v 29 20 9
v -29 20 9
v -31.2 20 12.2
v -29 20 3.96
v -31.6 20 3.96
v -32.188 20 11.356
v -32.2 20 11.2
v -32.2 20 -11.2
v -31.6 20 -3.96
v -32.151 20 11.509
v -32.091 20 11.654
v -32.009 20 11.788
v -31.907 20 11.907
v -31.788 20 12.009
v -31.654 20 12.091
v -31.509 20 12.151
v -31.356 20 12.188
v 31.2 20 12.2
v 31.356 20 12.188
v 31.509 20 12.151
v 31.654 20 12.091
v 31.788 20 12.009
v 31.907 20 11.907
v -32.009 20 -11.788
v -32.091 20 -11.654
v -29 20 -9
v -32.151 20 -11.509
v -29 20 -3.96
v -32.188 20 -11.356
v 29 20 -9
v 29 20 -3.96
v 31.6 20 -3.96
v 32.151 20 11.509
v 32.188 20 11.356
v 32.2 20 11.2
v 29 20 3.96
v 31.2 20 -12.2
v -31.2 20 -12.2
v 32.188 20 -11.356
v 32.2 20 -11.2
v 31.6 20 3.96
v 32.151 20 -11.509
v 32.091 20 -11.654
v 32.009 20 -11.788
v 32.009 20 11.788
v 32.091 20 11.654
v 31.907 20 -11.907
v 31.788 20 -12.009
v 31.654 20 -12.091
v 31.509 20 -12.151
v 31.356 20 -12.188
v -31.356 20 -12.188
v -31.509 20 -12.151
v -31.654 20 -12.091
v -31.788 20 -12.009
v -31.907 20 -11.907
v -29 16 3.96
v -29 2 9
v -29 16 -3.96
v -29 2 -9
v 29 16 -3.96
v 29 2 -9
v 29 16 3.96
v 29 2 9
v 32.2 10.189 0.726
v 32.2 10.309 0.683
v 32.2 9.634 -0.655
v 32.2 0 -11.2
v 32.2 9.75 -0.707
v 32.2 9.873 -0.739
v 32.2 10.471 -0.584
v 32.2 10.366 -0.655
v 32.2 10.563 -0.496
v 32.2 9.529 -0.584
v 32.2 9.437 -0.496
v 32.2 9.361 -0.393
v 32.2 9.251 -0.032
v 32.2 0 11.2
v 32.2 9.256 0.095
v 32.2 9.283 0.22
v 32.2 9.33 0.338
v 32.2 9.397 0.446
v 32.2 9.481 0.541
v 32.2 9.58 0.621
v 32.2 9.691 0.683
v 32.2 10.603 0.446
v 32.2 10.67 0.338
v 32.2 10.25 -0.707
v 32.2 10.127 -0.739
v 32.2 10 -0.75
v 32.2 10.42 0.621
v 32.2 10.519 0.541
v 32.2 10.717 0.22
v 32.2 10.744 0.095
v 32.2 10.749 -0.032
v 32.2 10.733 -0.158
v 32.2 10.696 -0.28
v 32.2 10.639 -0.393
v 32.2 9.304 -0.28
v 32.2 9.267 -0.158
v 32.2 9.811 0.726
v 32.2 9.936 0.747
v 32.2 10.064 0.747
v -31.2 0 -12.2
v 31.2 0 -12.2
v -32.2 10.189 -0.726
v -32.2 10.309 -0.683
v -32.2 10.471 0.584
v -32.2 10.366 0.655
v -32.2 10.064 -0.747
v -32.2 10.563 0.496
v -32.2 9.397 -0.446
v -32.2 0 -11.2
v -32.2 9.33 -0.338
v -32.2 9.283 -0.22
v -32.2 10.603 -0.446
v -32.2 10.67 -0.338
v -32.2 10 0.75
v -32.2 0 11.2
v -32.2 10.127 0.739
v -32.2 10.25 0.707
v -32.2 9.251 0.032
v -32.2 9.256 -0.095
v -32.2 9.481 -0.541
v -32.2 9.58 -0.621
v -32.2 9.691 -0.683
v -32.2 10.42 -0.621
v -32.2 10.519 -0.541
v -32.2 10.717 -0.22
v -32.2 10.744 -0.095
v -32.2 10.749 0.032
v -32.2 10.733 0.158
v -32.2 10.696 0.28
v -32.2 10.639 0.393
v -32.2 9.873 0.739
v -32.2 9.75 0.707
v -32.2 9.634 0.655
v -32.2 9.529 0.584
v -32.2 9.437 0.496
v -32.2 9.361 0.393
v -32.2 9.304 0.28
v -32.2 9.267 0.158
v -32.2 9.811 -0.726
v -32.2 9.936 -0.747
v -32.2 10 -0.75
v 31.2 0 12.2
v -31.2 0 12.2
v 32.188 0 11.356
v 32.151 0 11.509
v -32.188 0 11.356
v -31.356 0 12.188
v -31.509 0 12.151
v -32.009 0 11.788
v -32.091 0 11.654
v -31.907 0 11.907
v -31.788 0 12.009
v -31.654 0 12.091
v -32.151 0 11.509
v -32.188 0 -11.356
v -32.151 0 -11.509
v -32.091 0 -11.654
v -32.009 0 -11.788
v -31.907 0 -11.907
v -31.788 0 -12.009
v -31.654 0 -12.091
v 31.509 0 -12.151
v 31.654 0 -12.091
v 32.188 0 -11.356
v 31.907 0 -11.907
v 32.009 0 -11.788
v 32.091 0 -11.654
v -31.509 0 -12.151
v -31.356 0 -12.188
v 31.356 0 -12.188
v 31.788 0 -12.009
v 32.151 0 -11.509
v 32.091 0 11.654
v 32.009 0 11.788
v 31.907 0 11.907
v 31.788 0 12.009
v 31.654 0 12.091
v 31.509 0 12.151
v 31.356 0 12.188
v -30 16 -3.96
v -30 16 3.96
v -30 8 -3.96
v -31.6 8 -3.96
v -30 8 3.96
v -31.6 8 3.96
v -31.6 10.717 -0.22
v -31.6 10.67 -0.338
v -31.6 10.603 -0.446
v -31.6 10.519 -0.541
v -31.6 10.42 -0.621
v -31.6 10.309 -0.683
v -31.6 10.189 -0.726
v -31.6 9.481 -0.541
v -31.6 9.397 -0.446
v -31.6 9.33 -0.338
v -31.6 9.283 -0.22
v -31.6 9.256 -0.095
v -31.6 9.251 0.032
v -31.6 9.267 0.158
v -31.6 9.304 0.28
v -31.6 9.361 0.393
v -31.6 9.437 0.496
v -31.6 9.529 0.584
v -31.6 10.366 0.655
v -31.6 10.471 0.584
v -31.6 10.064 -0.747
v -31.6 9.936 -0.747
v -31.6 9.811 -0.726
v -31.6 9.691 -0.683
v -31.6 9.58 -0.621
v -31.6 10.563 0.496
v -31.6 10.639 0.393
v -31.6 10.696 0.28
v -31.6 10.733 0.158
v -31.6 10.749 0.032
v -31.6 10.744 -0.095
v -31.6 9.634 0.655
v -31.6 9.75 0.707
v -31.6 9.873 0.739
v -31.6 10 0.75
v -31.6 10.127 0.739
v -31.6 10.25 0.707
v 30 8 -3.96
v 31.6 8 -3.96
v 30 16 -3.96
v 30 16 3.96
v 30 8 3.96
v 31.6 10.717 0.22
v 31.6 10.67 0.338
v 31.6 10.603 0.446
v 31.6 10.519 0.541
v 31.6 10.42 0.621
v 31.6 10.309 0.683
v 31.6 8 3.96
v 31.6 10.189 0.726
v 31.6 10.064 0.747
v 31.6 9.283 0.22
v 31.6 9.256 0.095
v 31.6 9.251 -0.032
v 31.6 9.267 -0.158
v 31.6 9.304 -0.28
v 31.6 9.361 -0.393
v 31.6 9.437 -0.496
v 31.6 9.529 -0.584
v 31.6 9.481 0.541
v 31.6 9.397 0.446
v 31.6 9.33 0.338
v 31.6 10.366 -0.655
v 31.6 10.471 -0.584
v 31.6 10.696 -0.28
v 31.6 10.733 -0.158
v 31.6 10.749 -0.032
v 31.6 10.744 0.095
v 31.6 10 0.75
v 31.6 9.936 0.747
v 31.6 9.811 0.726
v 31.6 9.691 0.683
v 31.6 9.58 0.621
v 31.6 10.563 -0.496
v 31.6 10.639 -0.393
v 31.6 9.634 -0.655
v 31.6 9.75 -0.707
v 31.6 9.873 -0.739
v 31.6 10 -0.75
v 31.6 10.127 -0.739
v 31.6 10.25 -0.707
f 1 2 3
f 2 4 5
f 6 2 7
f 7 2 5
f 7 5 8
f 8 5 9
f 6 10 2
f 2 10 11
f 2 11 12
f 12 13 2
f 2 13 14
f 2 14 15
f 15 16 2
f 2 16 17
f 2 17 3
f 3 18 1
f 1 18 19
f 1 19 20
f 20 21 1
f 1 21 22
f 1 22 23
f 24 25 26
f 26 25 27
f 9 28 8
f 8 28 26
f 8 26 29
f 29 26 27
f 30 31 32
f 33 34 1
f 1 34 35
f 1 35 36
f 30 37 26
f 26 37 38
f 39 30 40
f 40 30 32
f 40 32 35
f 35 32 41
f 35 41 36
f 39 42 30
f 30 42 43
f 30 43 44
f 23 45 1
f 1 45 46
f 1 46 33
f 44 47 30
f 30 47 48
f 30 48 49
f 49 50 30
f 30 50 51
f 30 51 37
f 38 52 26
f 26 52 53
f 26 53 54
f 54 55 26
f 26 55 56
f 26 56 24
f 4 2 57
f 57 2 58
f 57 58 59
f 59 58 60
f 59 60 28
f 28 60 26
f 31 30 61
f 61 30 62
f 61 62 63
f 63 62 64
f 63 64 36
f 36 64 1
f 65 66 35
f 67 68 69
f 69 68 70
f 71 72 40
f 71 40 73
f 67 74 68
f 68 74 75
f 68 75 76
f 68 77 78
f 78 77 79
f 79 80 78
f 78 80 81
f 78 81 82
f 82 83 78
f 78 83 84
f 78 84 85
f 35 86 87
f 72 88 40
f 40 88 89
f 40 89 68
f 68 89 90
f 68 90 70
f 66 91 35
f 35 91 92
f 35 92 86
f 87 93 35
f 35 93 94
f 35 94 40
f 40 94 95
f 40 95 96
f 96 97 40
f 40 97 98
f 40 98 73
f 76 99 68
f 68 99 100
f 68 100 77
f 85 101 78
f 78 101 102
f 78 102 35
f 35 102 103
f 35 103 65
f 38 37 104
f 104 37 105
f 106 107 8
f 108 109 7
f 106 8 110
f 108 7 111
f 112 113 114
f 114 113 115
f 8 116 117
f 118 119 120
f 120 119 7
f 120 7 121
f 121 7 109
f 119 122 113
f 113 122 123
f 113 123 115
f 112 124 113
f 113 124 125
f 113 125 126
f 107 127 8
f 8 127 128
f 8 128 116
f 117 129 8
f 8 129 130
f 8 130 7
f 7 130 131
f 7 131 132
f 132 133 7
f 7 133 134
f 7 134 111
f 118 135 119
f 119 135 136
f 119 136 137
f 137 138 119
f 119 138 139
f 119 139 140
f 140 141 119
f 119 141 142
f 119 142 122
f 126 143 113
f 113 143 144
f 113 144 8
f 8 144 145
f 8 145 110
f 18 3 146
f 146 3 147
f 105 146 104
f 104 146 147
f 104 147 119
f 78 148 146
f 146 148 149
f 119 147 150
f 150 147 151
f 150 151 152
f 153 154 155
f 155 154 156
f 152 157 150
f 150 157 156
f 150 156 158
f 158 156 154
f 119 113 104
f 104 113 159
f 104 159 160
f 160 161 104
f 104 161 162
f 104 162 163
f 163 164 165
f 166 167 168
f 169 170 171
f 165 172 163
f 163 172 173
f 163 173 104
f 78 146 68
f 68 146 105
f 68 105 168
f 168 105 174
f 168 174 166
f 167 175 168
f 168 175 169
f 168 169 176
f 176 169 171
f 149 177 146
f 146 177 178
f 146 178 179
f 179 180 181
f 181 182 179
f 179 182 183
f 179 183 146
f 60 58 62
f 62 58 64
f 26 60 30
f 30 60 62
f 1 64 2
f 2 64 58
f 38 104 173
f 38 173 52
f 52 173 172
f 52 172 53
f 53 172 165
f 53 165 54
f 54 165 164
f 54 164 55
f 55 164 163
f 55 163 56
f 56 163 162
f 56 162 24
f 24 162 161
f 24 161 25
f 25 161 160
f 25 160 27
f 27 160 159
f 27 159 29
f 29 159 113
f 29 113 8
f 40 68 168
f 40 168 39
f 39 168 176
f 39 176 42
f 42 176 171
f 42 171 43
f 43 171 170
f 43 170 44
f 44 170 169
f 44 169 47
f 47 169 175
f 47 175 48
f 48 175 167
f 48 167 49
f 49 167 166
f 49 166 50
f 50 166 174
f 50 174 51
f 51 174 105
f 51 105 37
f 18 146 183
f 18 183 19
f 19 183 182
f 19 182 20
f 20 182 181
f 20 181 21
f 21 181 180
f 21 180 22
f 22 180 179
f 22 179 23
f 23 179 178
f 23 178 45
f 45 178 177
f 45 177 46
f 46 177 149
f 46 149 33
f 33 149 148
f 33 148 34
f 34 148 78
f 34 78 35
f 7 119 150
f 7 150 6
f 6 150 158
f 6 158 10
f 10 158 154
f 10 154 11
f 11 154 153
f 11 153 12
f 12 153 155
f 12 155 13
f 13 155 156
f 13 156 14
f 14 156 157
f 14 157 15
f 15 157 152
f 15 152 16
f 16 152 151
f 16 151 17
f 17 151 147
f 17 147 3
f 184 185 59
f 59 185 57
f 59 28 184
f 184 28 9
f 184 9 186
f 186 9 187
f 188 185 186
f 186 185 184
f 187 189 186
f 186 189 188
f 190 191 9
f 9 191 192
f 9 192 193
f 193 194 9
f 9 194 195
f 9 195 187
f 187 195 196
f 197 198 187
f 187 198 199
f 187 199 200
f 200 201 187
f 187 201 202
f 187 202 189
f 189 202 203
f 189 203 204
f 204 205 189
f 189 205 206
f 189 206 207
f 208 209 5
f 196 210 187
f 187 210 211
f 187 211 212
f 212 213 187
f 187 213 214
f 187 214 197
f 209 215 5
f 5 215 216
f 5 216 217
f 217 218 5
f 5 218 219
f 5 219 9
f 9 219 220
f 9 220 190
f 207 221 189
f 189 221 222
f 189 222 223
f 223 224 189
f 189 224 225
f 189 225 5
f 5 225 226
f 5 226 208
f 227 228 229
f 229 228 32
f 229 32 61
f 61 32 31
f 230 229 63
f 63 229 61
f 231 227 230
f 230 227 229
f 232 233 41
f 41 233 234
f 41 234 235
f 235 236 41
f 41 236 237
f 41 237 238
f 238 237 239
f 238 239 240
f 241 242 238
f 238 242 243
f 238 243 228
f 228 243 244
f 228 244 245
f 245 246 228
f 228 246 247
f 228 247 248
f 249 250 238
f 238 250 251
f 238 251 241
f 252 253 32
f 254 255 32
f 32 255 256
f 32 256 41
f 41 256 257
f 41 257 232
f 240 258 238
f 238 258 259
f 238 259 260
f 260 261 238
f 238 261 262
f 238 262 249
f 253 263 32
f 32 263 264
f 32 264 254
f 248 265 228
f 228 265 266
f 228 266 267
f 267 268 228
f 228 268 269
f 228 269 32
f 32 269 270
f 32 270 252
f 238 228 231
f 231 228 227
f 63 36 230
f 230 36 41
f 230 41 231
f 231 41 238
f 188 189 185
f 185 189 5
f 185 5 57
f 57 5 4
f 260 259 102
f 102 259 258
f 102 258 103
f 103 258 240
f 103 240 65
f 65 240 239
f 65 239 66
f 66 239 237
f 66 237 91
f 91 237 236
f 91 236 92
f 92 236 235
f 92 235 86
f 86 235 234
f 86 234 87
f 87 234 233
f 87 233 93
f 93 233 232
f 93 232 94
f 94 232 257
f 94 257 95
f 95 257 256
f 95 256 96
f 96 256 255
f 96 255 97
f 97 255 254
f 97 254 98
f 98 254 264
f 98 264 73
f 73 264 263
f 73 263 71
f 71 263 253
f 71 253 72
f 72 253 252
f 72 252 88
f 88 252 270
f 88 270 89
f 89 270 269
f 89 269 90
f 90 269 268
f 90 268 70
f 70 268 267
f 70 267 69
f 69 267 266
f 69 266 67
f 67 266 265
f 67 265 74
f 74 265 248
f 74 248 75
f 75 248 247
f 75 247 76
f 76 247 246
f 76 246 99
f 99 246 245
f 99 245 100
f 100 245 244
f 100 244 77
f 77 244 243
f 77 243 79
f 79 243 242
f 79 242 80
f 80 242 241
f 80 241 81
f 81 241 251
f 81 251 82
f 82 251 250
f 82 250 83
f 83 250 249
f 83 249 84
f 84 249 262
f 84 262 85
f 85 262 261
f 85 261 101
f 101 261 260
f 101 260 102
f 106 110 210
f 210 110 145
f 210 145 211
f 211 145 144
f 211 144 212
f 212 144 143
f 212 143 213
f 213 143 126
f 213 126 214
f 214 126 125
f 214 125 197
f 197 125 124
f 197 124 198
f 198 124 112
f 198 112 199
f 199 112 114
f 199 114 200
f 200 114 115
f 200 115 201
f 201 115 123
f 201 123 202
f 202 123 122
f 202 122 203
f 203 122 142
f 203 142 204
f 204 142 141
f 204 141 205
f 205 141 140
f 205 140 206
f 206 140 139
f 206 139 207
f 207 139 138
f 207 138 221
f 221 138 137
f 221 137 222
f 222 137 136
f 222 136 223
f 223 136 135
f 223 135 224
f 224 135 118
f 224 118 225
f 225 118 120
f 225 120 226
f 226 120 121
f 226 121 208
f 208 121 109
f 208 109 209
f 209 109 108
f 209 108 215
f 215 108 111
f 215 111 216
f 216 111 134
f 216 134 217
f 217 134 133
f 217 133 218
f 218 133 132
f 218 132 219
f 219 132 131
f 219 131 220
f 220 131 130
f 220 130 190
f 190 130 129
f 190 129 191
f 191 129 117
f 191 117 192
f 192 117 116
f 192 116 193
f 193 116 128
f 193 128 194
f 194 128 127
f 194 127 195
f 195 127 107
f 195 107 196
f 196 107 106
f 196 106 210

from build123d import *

# Parameters (mm, degrees)
SKETCH2_W               = 64.4
SKETCH2_H               = 24.4
BOSS_EXTRUDE1_DEPTH     = 20
SKETCH3_W               = 58
SKETCH3_H               = 18
CUT_EXTRUDE1_DEPTH      = 18
FILLET1_R               = 1
SKETCH4_W               = 1
SKETCH4_H               = 3.96
CUT_EXTRUDE2_DEPTH      = 4
SKETCH5_W               = 1.6
SKETCH5_H               = 3.96
CUT_EXTRUDE3_DEPTH      = 12
MIRROR5_COPY_1_SKETCH_W = 1
MIRROR5_COPY_1_SKETCH_H = 3.96
MIRROR5_COPY_1_DEPTH    = 4
MIRROR5_COPY_2_SKETCH_W = 1.6
MIRROR5_COPY_2_SKETCH_H = 3.96
MIRROR5_COPY_2_DEPTH    = 12
CUT_EXTRUDE4_REACH      = 70.529
SKETCH6_R               = 0.75


with BuildPart() as part:
    # Sketch2 → Boss-Extrude1 (new body)
    with BuildSketch(Plane(origin=(0, 0, 0), x_dir=(1, 0, 0), z_dir=(0, 1, 0))):
        Rectangle(SKETCH2_W, SKETCH2_H)
    extrude(amount=BOSS_EXTRUDE1_DEPTH)

    # Sketch3 → Cut-Extrude1 (cut)
    with BuildSketch(Plane(origin=(0, 20, 0), x_dir=(1, 0, 0), z_dir=(0, 1, 0))):
        Rectangle(SKETCH3_W, SKETCH3_H)
    extrude(amount=-CUT_EXTRUDE1_DEPTH, mode=Mode.SUBTRACT)

    # Fillet1
    fillet1_edges = [part.edges().sort_by_distance(p)[0] for p in [
        (32.2, 10, 12.2),
        (-32.2, 10, 12.2),
        (-32.2, 10, -12.2),
        (32.2, 10, -12.2),
    ]]
    fillet(fillet1_edges, radius=FILLET1_R)

    # Sketch4 → Cut-Extrude2 (cut)
    with BuildSketch(Plane(origin=(0, 20, 0), x_dir=(1, 0, 0), z_dir=(0, 1, 0))):
        with Locations((-29.5, 1.98)):
            Rectangle(SKETCH4_W, SKETCH4_H)
    cut_extrude2 = extrude(amount=-CUT_EXTRUDE2_DEPTH, mode=Mode.SUBTRACT)

    # Sketch5 → Cut-Extrude3 (cut)
    with BuildSketch(Plane(origin=(0, 20, 0), x_dir=(1, 0, 0), z_dir=(0, 1, 0))):
        with Locations((-30.8, 1.98)):
            Rectangle(SKETCH5_W, SKETCH5_H)
    cut_extrude3 = extrude(amount=-CUT_EXTRUDE3_DEPTH, mode=Mode.SUBTRACT)

    # Mirror4: Cut-Extrude2, Cut-Extrude3 across plane
    add(cut_extrude2.mirror(Plane(origin=(0, 0, 0), x_dir=(0, 0, 1), z_dir=(1, 0, 0))), mode=Mode.SUBTRACT)
    add(cut_extrude3.mirror(Plane(origin=(0, 0, 0), x_dir=(0, 0, 1), z_dir=(1, 0, 0))), mode=Mode.SUBTRACT)

    # Mirror5: Cut-Extrude2, Cut-Extrude3 across plane
    add(cut_extrude2.mirror(Plane.XY), mode=Mode.SUBTRACT)
    add(cut_extrude3.mirror(Plane.XY), mode=Mode.SUBTRACT)

    # Mirror5 copy 1 sketch → Mirror5 copy 1 (cut)
    with BuildSketch(Plane(origin=(0, 20, 0), x_dir=(-1, 0, 0), z_dir=(0, 1, 0))):
        with Locations((-29.5, 1.98)):
            Rectangle(MIRROR5_COPY_1_SKETCH_W, MIRROR5_COPY_1_SKETCH_H)
    extrude(amount=-MIRROR5_COPY_1_DEPTH, mode=Mode.SUBTRACT)

    # Mirror5 copy 2 sketch → Mirror5 copy 2 (cut)
    with BuildSketch(Plane(origin=(0, 20, 0), x_dir=(-1, 0, 0), z_dir=(0, 1, 0))):
        with Locations((-30.8, 1.98)):
            Rectangle(MIRROR5_COPY_2_SKETCH_W, MIRROR5_COPY_2_SKETCH_H)
    extrude(amount=-MIRROR5_COPY_2_DEPTH, mode=Mode.SUBTRACT)

    # Sketch6 → Cut-Extrude4 (cut, up to next)
    with BuildSketch(Plane(origin=(32.2, 0, 0), x_dir=(0, 0, -1), z_dir=(1, 0, 0)), mode=Mode.PRIVATE) as cut_extrude4_sk1:
        with Locations((0, 10)):
            Circle(SKETCH6_R)
    cut_extrude4_tool1 = extrude(cut_extrude4_sk1.sketch, amount=-CUT_EXTRUDE4_REACH, mode=Mode.PRIVATE) & part.part
    cut_extrude4 = cut_extrude4_tool1.solids().sort_by_distance((32.2, 10, 0))[0]
    add(cut_extrude4, mode=Mode.SUBTRACT)

    # Mirror6: Cut-Extrude4 across plane
    add(cut_extrude4.mirror(Plane(origin=(0, 0, 0), x_dir=(0, 0, 1), z_dir=(1, 0, 0))), mode=Mode.SUBTRACT)


solid = part.part
